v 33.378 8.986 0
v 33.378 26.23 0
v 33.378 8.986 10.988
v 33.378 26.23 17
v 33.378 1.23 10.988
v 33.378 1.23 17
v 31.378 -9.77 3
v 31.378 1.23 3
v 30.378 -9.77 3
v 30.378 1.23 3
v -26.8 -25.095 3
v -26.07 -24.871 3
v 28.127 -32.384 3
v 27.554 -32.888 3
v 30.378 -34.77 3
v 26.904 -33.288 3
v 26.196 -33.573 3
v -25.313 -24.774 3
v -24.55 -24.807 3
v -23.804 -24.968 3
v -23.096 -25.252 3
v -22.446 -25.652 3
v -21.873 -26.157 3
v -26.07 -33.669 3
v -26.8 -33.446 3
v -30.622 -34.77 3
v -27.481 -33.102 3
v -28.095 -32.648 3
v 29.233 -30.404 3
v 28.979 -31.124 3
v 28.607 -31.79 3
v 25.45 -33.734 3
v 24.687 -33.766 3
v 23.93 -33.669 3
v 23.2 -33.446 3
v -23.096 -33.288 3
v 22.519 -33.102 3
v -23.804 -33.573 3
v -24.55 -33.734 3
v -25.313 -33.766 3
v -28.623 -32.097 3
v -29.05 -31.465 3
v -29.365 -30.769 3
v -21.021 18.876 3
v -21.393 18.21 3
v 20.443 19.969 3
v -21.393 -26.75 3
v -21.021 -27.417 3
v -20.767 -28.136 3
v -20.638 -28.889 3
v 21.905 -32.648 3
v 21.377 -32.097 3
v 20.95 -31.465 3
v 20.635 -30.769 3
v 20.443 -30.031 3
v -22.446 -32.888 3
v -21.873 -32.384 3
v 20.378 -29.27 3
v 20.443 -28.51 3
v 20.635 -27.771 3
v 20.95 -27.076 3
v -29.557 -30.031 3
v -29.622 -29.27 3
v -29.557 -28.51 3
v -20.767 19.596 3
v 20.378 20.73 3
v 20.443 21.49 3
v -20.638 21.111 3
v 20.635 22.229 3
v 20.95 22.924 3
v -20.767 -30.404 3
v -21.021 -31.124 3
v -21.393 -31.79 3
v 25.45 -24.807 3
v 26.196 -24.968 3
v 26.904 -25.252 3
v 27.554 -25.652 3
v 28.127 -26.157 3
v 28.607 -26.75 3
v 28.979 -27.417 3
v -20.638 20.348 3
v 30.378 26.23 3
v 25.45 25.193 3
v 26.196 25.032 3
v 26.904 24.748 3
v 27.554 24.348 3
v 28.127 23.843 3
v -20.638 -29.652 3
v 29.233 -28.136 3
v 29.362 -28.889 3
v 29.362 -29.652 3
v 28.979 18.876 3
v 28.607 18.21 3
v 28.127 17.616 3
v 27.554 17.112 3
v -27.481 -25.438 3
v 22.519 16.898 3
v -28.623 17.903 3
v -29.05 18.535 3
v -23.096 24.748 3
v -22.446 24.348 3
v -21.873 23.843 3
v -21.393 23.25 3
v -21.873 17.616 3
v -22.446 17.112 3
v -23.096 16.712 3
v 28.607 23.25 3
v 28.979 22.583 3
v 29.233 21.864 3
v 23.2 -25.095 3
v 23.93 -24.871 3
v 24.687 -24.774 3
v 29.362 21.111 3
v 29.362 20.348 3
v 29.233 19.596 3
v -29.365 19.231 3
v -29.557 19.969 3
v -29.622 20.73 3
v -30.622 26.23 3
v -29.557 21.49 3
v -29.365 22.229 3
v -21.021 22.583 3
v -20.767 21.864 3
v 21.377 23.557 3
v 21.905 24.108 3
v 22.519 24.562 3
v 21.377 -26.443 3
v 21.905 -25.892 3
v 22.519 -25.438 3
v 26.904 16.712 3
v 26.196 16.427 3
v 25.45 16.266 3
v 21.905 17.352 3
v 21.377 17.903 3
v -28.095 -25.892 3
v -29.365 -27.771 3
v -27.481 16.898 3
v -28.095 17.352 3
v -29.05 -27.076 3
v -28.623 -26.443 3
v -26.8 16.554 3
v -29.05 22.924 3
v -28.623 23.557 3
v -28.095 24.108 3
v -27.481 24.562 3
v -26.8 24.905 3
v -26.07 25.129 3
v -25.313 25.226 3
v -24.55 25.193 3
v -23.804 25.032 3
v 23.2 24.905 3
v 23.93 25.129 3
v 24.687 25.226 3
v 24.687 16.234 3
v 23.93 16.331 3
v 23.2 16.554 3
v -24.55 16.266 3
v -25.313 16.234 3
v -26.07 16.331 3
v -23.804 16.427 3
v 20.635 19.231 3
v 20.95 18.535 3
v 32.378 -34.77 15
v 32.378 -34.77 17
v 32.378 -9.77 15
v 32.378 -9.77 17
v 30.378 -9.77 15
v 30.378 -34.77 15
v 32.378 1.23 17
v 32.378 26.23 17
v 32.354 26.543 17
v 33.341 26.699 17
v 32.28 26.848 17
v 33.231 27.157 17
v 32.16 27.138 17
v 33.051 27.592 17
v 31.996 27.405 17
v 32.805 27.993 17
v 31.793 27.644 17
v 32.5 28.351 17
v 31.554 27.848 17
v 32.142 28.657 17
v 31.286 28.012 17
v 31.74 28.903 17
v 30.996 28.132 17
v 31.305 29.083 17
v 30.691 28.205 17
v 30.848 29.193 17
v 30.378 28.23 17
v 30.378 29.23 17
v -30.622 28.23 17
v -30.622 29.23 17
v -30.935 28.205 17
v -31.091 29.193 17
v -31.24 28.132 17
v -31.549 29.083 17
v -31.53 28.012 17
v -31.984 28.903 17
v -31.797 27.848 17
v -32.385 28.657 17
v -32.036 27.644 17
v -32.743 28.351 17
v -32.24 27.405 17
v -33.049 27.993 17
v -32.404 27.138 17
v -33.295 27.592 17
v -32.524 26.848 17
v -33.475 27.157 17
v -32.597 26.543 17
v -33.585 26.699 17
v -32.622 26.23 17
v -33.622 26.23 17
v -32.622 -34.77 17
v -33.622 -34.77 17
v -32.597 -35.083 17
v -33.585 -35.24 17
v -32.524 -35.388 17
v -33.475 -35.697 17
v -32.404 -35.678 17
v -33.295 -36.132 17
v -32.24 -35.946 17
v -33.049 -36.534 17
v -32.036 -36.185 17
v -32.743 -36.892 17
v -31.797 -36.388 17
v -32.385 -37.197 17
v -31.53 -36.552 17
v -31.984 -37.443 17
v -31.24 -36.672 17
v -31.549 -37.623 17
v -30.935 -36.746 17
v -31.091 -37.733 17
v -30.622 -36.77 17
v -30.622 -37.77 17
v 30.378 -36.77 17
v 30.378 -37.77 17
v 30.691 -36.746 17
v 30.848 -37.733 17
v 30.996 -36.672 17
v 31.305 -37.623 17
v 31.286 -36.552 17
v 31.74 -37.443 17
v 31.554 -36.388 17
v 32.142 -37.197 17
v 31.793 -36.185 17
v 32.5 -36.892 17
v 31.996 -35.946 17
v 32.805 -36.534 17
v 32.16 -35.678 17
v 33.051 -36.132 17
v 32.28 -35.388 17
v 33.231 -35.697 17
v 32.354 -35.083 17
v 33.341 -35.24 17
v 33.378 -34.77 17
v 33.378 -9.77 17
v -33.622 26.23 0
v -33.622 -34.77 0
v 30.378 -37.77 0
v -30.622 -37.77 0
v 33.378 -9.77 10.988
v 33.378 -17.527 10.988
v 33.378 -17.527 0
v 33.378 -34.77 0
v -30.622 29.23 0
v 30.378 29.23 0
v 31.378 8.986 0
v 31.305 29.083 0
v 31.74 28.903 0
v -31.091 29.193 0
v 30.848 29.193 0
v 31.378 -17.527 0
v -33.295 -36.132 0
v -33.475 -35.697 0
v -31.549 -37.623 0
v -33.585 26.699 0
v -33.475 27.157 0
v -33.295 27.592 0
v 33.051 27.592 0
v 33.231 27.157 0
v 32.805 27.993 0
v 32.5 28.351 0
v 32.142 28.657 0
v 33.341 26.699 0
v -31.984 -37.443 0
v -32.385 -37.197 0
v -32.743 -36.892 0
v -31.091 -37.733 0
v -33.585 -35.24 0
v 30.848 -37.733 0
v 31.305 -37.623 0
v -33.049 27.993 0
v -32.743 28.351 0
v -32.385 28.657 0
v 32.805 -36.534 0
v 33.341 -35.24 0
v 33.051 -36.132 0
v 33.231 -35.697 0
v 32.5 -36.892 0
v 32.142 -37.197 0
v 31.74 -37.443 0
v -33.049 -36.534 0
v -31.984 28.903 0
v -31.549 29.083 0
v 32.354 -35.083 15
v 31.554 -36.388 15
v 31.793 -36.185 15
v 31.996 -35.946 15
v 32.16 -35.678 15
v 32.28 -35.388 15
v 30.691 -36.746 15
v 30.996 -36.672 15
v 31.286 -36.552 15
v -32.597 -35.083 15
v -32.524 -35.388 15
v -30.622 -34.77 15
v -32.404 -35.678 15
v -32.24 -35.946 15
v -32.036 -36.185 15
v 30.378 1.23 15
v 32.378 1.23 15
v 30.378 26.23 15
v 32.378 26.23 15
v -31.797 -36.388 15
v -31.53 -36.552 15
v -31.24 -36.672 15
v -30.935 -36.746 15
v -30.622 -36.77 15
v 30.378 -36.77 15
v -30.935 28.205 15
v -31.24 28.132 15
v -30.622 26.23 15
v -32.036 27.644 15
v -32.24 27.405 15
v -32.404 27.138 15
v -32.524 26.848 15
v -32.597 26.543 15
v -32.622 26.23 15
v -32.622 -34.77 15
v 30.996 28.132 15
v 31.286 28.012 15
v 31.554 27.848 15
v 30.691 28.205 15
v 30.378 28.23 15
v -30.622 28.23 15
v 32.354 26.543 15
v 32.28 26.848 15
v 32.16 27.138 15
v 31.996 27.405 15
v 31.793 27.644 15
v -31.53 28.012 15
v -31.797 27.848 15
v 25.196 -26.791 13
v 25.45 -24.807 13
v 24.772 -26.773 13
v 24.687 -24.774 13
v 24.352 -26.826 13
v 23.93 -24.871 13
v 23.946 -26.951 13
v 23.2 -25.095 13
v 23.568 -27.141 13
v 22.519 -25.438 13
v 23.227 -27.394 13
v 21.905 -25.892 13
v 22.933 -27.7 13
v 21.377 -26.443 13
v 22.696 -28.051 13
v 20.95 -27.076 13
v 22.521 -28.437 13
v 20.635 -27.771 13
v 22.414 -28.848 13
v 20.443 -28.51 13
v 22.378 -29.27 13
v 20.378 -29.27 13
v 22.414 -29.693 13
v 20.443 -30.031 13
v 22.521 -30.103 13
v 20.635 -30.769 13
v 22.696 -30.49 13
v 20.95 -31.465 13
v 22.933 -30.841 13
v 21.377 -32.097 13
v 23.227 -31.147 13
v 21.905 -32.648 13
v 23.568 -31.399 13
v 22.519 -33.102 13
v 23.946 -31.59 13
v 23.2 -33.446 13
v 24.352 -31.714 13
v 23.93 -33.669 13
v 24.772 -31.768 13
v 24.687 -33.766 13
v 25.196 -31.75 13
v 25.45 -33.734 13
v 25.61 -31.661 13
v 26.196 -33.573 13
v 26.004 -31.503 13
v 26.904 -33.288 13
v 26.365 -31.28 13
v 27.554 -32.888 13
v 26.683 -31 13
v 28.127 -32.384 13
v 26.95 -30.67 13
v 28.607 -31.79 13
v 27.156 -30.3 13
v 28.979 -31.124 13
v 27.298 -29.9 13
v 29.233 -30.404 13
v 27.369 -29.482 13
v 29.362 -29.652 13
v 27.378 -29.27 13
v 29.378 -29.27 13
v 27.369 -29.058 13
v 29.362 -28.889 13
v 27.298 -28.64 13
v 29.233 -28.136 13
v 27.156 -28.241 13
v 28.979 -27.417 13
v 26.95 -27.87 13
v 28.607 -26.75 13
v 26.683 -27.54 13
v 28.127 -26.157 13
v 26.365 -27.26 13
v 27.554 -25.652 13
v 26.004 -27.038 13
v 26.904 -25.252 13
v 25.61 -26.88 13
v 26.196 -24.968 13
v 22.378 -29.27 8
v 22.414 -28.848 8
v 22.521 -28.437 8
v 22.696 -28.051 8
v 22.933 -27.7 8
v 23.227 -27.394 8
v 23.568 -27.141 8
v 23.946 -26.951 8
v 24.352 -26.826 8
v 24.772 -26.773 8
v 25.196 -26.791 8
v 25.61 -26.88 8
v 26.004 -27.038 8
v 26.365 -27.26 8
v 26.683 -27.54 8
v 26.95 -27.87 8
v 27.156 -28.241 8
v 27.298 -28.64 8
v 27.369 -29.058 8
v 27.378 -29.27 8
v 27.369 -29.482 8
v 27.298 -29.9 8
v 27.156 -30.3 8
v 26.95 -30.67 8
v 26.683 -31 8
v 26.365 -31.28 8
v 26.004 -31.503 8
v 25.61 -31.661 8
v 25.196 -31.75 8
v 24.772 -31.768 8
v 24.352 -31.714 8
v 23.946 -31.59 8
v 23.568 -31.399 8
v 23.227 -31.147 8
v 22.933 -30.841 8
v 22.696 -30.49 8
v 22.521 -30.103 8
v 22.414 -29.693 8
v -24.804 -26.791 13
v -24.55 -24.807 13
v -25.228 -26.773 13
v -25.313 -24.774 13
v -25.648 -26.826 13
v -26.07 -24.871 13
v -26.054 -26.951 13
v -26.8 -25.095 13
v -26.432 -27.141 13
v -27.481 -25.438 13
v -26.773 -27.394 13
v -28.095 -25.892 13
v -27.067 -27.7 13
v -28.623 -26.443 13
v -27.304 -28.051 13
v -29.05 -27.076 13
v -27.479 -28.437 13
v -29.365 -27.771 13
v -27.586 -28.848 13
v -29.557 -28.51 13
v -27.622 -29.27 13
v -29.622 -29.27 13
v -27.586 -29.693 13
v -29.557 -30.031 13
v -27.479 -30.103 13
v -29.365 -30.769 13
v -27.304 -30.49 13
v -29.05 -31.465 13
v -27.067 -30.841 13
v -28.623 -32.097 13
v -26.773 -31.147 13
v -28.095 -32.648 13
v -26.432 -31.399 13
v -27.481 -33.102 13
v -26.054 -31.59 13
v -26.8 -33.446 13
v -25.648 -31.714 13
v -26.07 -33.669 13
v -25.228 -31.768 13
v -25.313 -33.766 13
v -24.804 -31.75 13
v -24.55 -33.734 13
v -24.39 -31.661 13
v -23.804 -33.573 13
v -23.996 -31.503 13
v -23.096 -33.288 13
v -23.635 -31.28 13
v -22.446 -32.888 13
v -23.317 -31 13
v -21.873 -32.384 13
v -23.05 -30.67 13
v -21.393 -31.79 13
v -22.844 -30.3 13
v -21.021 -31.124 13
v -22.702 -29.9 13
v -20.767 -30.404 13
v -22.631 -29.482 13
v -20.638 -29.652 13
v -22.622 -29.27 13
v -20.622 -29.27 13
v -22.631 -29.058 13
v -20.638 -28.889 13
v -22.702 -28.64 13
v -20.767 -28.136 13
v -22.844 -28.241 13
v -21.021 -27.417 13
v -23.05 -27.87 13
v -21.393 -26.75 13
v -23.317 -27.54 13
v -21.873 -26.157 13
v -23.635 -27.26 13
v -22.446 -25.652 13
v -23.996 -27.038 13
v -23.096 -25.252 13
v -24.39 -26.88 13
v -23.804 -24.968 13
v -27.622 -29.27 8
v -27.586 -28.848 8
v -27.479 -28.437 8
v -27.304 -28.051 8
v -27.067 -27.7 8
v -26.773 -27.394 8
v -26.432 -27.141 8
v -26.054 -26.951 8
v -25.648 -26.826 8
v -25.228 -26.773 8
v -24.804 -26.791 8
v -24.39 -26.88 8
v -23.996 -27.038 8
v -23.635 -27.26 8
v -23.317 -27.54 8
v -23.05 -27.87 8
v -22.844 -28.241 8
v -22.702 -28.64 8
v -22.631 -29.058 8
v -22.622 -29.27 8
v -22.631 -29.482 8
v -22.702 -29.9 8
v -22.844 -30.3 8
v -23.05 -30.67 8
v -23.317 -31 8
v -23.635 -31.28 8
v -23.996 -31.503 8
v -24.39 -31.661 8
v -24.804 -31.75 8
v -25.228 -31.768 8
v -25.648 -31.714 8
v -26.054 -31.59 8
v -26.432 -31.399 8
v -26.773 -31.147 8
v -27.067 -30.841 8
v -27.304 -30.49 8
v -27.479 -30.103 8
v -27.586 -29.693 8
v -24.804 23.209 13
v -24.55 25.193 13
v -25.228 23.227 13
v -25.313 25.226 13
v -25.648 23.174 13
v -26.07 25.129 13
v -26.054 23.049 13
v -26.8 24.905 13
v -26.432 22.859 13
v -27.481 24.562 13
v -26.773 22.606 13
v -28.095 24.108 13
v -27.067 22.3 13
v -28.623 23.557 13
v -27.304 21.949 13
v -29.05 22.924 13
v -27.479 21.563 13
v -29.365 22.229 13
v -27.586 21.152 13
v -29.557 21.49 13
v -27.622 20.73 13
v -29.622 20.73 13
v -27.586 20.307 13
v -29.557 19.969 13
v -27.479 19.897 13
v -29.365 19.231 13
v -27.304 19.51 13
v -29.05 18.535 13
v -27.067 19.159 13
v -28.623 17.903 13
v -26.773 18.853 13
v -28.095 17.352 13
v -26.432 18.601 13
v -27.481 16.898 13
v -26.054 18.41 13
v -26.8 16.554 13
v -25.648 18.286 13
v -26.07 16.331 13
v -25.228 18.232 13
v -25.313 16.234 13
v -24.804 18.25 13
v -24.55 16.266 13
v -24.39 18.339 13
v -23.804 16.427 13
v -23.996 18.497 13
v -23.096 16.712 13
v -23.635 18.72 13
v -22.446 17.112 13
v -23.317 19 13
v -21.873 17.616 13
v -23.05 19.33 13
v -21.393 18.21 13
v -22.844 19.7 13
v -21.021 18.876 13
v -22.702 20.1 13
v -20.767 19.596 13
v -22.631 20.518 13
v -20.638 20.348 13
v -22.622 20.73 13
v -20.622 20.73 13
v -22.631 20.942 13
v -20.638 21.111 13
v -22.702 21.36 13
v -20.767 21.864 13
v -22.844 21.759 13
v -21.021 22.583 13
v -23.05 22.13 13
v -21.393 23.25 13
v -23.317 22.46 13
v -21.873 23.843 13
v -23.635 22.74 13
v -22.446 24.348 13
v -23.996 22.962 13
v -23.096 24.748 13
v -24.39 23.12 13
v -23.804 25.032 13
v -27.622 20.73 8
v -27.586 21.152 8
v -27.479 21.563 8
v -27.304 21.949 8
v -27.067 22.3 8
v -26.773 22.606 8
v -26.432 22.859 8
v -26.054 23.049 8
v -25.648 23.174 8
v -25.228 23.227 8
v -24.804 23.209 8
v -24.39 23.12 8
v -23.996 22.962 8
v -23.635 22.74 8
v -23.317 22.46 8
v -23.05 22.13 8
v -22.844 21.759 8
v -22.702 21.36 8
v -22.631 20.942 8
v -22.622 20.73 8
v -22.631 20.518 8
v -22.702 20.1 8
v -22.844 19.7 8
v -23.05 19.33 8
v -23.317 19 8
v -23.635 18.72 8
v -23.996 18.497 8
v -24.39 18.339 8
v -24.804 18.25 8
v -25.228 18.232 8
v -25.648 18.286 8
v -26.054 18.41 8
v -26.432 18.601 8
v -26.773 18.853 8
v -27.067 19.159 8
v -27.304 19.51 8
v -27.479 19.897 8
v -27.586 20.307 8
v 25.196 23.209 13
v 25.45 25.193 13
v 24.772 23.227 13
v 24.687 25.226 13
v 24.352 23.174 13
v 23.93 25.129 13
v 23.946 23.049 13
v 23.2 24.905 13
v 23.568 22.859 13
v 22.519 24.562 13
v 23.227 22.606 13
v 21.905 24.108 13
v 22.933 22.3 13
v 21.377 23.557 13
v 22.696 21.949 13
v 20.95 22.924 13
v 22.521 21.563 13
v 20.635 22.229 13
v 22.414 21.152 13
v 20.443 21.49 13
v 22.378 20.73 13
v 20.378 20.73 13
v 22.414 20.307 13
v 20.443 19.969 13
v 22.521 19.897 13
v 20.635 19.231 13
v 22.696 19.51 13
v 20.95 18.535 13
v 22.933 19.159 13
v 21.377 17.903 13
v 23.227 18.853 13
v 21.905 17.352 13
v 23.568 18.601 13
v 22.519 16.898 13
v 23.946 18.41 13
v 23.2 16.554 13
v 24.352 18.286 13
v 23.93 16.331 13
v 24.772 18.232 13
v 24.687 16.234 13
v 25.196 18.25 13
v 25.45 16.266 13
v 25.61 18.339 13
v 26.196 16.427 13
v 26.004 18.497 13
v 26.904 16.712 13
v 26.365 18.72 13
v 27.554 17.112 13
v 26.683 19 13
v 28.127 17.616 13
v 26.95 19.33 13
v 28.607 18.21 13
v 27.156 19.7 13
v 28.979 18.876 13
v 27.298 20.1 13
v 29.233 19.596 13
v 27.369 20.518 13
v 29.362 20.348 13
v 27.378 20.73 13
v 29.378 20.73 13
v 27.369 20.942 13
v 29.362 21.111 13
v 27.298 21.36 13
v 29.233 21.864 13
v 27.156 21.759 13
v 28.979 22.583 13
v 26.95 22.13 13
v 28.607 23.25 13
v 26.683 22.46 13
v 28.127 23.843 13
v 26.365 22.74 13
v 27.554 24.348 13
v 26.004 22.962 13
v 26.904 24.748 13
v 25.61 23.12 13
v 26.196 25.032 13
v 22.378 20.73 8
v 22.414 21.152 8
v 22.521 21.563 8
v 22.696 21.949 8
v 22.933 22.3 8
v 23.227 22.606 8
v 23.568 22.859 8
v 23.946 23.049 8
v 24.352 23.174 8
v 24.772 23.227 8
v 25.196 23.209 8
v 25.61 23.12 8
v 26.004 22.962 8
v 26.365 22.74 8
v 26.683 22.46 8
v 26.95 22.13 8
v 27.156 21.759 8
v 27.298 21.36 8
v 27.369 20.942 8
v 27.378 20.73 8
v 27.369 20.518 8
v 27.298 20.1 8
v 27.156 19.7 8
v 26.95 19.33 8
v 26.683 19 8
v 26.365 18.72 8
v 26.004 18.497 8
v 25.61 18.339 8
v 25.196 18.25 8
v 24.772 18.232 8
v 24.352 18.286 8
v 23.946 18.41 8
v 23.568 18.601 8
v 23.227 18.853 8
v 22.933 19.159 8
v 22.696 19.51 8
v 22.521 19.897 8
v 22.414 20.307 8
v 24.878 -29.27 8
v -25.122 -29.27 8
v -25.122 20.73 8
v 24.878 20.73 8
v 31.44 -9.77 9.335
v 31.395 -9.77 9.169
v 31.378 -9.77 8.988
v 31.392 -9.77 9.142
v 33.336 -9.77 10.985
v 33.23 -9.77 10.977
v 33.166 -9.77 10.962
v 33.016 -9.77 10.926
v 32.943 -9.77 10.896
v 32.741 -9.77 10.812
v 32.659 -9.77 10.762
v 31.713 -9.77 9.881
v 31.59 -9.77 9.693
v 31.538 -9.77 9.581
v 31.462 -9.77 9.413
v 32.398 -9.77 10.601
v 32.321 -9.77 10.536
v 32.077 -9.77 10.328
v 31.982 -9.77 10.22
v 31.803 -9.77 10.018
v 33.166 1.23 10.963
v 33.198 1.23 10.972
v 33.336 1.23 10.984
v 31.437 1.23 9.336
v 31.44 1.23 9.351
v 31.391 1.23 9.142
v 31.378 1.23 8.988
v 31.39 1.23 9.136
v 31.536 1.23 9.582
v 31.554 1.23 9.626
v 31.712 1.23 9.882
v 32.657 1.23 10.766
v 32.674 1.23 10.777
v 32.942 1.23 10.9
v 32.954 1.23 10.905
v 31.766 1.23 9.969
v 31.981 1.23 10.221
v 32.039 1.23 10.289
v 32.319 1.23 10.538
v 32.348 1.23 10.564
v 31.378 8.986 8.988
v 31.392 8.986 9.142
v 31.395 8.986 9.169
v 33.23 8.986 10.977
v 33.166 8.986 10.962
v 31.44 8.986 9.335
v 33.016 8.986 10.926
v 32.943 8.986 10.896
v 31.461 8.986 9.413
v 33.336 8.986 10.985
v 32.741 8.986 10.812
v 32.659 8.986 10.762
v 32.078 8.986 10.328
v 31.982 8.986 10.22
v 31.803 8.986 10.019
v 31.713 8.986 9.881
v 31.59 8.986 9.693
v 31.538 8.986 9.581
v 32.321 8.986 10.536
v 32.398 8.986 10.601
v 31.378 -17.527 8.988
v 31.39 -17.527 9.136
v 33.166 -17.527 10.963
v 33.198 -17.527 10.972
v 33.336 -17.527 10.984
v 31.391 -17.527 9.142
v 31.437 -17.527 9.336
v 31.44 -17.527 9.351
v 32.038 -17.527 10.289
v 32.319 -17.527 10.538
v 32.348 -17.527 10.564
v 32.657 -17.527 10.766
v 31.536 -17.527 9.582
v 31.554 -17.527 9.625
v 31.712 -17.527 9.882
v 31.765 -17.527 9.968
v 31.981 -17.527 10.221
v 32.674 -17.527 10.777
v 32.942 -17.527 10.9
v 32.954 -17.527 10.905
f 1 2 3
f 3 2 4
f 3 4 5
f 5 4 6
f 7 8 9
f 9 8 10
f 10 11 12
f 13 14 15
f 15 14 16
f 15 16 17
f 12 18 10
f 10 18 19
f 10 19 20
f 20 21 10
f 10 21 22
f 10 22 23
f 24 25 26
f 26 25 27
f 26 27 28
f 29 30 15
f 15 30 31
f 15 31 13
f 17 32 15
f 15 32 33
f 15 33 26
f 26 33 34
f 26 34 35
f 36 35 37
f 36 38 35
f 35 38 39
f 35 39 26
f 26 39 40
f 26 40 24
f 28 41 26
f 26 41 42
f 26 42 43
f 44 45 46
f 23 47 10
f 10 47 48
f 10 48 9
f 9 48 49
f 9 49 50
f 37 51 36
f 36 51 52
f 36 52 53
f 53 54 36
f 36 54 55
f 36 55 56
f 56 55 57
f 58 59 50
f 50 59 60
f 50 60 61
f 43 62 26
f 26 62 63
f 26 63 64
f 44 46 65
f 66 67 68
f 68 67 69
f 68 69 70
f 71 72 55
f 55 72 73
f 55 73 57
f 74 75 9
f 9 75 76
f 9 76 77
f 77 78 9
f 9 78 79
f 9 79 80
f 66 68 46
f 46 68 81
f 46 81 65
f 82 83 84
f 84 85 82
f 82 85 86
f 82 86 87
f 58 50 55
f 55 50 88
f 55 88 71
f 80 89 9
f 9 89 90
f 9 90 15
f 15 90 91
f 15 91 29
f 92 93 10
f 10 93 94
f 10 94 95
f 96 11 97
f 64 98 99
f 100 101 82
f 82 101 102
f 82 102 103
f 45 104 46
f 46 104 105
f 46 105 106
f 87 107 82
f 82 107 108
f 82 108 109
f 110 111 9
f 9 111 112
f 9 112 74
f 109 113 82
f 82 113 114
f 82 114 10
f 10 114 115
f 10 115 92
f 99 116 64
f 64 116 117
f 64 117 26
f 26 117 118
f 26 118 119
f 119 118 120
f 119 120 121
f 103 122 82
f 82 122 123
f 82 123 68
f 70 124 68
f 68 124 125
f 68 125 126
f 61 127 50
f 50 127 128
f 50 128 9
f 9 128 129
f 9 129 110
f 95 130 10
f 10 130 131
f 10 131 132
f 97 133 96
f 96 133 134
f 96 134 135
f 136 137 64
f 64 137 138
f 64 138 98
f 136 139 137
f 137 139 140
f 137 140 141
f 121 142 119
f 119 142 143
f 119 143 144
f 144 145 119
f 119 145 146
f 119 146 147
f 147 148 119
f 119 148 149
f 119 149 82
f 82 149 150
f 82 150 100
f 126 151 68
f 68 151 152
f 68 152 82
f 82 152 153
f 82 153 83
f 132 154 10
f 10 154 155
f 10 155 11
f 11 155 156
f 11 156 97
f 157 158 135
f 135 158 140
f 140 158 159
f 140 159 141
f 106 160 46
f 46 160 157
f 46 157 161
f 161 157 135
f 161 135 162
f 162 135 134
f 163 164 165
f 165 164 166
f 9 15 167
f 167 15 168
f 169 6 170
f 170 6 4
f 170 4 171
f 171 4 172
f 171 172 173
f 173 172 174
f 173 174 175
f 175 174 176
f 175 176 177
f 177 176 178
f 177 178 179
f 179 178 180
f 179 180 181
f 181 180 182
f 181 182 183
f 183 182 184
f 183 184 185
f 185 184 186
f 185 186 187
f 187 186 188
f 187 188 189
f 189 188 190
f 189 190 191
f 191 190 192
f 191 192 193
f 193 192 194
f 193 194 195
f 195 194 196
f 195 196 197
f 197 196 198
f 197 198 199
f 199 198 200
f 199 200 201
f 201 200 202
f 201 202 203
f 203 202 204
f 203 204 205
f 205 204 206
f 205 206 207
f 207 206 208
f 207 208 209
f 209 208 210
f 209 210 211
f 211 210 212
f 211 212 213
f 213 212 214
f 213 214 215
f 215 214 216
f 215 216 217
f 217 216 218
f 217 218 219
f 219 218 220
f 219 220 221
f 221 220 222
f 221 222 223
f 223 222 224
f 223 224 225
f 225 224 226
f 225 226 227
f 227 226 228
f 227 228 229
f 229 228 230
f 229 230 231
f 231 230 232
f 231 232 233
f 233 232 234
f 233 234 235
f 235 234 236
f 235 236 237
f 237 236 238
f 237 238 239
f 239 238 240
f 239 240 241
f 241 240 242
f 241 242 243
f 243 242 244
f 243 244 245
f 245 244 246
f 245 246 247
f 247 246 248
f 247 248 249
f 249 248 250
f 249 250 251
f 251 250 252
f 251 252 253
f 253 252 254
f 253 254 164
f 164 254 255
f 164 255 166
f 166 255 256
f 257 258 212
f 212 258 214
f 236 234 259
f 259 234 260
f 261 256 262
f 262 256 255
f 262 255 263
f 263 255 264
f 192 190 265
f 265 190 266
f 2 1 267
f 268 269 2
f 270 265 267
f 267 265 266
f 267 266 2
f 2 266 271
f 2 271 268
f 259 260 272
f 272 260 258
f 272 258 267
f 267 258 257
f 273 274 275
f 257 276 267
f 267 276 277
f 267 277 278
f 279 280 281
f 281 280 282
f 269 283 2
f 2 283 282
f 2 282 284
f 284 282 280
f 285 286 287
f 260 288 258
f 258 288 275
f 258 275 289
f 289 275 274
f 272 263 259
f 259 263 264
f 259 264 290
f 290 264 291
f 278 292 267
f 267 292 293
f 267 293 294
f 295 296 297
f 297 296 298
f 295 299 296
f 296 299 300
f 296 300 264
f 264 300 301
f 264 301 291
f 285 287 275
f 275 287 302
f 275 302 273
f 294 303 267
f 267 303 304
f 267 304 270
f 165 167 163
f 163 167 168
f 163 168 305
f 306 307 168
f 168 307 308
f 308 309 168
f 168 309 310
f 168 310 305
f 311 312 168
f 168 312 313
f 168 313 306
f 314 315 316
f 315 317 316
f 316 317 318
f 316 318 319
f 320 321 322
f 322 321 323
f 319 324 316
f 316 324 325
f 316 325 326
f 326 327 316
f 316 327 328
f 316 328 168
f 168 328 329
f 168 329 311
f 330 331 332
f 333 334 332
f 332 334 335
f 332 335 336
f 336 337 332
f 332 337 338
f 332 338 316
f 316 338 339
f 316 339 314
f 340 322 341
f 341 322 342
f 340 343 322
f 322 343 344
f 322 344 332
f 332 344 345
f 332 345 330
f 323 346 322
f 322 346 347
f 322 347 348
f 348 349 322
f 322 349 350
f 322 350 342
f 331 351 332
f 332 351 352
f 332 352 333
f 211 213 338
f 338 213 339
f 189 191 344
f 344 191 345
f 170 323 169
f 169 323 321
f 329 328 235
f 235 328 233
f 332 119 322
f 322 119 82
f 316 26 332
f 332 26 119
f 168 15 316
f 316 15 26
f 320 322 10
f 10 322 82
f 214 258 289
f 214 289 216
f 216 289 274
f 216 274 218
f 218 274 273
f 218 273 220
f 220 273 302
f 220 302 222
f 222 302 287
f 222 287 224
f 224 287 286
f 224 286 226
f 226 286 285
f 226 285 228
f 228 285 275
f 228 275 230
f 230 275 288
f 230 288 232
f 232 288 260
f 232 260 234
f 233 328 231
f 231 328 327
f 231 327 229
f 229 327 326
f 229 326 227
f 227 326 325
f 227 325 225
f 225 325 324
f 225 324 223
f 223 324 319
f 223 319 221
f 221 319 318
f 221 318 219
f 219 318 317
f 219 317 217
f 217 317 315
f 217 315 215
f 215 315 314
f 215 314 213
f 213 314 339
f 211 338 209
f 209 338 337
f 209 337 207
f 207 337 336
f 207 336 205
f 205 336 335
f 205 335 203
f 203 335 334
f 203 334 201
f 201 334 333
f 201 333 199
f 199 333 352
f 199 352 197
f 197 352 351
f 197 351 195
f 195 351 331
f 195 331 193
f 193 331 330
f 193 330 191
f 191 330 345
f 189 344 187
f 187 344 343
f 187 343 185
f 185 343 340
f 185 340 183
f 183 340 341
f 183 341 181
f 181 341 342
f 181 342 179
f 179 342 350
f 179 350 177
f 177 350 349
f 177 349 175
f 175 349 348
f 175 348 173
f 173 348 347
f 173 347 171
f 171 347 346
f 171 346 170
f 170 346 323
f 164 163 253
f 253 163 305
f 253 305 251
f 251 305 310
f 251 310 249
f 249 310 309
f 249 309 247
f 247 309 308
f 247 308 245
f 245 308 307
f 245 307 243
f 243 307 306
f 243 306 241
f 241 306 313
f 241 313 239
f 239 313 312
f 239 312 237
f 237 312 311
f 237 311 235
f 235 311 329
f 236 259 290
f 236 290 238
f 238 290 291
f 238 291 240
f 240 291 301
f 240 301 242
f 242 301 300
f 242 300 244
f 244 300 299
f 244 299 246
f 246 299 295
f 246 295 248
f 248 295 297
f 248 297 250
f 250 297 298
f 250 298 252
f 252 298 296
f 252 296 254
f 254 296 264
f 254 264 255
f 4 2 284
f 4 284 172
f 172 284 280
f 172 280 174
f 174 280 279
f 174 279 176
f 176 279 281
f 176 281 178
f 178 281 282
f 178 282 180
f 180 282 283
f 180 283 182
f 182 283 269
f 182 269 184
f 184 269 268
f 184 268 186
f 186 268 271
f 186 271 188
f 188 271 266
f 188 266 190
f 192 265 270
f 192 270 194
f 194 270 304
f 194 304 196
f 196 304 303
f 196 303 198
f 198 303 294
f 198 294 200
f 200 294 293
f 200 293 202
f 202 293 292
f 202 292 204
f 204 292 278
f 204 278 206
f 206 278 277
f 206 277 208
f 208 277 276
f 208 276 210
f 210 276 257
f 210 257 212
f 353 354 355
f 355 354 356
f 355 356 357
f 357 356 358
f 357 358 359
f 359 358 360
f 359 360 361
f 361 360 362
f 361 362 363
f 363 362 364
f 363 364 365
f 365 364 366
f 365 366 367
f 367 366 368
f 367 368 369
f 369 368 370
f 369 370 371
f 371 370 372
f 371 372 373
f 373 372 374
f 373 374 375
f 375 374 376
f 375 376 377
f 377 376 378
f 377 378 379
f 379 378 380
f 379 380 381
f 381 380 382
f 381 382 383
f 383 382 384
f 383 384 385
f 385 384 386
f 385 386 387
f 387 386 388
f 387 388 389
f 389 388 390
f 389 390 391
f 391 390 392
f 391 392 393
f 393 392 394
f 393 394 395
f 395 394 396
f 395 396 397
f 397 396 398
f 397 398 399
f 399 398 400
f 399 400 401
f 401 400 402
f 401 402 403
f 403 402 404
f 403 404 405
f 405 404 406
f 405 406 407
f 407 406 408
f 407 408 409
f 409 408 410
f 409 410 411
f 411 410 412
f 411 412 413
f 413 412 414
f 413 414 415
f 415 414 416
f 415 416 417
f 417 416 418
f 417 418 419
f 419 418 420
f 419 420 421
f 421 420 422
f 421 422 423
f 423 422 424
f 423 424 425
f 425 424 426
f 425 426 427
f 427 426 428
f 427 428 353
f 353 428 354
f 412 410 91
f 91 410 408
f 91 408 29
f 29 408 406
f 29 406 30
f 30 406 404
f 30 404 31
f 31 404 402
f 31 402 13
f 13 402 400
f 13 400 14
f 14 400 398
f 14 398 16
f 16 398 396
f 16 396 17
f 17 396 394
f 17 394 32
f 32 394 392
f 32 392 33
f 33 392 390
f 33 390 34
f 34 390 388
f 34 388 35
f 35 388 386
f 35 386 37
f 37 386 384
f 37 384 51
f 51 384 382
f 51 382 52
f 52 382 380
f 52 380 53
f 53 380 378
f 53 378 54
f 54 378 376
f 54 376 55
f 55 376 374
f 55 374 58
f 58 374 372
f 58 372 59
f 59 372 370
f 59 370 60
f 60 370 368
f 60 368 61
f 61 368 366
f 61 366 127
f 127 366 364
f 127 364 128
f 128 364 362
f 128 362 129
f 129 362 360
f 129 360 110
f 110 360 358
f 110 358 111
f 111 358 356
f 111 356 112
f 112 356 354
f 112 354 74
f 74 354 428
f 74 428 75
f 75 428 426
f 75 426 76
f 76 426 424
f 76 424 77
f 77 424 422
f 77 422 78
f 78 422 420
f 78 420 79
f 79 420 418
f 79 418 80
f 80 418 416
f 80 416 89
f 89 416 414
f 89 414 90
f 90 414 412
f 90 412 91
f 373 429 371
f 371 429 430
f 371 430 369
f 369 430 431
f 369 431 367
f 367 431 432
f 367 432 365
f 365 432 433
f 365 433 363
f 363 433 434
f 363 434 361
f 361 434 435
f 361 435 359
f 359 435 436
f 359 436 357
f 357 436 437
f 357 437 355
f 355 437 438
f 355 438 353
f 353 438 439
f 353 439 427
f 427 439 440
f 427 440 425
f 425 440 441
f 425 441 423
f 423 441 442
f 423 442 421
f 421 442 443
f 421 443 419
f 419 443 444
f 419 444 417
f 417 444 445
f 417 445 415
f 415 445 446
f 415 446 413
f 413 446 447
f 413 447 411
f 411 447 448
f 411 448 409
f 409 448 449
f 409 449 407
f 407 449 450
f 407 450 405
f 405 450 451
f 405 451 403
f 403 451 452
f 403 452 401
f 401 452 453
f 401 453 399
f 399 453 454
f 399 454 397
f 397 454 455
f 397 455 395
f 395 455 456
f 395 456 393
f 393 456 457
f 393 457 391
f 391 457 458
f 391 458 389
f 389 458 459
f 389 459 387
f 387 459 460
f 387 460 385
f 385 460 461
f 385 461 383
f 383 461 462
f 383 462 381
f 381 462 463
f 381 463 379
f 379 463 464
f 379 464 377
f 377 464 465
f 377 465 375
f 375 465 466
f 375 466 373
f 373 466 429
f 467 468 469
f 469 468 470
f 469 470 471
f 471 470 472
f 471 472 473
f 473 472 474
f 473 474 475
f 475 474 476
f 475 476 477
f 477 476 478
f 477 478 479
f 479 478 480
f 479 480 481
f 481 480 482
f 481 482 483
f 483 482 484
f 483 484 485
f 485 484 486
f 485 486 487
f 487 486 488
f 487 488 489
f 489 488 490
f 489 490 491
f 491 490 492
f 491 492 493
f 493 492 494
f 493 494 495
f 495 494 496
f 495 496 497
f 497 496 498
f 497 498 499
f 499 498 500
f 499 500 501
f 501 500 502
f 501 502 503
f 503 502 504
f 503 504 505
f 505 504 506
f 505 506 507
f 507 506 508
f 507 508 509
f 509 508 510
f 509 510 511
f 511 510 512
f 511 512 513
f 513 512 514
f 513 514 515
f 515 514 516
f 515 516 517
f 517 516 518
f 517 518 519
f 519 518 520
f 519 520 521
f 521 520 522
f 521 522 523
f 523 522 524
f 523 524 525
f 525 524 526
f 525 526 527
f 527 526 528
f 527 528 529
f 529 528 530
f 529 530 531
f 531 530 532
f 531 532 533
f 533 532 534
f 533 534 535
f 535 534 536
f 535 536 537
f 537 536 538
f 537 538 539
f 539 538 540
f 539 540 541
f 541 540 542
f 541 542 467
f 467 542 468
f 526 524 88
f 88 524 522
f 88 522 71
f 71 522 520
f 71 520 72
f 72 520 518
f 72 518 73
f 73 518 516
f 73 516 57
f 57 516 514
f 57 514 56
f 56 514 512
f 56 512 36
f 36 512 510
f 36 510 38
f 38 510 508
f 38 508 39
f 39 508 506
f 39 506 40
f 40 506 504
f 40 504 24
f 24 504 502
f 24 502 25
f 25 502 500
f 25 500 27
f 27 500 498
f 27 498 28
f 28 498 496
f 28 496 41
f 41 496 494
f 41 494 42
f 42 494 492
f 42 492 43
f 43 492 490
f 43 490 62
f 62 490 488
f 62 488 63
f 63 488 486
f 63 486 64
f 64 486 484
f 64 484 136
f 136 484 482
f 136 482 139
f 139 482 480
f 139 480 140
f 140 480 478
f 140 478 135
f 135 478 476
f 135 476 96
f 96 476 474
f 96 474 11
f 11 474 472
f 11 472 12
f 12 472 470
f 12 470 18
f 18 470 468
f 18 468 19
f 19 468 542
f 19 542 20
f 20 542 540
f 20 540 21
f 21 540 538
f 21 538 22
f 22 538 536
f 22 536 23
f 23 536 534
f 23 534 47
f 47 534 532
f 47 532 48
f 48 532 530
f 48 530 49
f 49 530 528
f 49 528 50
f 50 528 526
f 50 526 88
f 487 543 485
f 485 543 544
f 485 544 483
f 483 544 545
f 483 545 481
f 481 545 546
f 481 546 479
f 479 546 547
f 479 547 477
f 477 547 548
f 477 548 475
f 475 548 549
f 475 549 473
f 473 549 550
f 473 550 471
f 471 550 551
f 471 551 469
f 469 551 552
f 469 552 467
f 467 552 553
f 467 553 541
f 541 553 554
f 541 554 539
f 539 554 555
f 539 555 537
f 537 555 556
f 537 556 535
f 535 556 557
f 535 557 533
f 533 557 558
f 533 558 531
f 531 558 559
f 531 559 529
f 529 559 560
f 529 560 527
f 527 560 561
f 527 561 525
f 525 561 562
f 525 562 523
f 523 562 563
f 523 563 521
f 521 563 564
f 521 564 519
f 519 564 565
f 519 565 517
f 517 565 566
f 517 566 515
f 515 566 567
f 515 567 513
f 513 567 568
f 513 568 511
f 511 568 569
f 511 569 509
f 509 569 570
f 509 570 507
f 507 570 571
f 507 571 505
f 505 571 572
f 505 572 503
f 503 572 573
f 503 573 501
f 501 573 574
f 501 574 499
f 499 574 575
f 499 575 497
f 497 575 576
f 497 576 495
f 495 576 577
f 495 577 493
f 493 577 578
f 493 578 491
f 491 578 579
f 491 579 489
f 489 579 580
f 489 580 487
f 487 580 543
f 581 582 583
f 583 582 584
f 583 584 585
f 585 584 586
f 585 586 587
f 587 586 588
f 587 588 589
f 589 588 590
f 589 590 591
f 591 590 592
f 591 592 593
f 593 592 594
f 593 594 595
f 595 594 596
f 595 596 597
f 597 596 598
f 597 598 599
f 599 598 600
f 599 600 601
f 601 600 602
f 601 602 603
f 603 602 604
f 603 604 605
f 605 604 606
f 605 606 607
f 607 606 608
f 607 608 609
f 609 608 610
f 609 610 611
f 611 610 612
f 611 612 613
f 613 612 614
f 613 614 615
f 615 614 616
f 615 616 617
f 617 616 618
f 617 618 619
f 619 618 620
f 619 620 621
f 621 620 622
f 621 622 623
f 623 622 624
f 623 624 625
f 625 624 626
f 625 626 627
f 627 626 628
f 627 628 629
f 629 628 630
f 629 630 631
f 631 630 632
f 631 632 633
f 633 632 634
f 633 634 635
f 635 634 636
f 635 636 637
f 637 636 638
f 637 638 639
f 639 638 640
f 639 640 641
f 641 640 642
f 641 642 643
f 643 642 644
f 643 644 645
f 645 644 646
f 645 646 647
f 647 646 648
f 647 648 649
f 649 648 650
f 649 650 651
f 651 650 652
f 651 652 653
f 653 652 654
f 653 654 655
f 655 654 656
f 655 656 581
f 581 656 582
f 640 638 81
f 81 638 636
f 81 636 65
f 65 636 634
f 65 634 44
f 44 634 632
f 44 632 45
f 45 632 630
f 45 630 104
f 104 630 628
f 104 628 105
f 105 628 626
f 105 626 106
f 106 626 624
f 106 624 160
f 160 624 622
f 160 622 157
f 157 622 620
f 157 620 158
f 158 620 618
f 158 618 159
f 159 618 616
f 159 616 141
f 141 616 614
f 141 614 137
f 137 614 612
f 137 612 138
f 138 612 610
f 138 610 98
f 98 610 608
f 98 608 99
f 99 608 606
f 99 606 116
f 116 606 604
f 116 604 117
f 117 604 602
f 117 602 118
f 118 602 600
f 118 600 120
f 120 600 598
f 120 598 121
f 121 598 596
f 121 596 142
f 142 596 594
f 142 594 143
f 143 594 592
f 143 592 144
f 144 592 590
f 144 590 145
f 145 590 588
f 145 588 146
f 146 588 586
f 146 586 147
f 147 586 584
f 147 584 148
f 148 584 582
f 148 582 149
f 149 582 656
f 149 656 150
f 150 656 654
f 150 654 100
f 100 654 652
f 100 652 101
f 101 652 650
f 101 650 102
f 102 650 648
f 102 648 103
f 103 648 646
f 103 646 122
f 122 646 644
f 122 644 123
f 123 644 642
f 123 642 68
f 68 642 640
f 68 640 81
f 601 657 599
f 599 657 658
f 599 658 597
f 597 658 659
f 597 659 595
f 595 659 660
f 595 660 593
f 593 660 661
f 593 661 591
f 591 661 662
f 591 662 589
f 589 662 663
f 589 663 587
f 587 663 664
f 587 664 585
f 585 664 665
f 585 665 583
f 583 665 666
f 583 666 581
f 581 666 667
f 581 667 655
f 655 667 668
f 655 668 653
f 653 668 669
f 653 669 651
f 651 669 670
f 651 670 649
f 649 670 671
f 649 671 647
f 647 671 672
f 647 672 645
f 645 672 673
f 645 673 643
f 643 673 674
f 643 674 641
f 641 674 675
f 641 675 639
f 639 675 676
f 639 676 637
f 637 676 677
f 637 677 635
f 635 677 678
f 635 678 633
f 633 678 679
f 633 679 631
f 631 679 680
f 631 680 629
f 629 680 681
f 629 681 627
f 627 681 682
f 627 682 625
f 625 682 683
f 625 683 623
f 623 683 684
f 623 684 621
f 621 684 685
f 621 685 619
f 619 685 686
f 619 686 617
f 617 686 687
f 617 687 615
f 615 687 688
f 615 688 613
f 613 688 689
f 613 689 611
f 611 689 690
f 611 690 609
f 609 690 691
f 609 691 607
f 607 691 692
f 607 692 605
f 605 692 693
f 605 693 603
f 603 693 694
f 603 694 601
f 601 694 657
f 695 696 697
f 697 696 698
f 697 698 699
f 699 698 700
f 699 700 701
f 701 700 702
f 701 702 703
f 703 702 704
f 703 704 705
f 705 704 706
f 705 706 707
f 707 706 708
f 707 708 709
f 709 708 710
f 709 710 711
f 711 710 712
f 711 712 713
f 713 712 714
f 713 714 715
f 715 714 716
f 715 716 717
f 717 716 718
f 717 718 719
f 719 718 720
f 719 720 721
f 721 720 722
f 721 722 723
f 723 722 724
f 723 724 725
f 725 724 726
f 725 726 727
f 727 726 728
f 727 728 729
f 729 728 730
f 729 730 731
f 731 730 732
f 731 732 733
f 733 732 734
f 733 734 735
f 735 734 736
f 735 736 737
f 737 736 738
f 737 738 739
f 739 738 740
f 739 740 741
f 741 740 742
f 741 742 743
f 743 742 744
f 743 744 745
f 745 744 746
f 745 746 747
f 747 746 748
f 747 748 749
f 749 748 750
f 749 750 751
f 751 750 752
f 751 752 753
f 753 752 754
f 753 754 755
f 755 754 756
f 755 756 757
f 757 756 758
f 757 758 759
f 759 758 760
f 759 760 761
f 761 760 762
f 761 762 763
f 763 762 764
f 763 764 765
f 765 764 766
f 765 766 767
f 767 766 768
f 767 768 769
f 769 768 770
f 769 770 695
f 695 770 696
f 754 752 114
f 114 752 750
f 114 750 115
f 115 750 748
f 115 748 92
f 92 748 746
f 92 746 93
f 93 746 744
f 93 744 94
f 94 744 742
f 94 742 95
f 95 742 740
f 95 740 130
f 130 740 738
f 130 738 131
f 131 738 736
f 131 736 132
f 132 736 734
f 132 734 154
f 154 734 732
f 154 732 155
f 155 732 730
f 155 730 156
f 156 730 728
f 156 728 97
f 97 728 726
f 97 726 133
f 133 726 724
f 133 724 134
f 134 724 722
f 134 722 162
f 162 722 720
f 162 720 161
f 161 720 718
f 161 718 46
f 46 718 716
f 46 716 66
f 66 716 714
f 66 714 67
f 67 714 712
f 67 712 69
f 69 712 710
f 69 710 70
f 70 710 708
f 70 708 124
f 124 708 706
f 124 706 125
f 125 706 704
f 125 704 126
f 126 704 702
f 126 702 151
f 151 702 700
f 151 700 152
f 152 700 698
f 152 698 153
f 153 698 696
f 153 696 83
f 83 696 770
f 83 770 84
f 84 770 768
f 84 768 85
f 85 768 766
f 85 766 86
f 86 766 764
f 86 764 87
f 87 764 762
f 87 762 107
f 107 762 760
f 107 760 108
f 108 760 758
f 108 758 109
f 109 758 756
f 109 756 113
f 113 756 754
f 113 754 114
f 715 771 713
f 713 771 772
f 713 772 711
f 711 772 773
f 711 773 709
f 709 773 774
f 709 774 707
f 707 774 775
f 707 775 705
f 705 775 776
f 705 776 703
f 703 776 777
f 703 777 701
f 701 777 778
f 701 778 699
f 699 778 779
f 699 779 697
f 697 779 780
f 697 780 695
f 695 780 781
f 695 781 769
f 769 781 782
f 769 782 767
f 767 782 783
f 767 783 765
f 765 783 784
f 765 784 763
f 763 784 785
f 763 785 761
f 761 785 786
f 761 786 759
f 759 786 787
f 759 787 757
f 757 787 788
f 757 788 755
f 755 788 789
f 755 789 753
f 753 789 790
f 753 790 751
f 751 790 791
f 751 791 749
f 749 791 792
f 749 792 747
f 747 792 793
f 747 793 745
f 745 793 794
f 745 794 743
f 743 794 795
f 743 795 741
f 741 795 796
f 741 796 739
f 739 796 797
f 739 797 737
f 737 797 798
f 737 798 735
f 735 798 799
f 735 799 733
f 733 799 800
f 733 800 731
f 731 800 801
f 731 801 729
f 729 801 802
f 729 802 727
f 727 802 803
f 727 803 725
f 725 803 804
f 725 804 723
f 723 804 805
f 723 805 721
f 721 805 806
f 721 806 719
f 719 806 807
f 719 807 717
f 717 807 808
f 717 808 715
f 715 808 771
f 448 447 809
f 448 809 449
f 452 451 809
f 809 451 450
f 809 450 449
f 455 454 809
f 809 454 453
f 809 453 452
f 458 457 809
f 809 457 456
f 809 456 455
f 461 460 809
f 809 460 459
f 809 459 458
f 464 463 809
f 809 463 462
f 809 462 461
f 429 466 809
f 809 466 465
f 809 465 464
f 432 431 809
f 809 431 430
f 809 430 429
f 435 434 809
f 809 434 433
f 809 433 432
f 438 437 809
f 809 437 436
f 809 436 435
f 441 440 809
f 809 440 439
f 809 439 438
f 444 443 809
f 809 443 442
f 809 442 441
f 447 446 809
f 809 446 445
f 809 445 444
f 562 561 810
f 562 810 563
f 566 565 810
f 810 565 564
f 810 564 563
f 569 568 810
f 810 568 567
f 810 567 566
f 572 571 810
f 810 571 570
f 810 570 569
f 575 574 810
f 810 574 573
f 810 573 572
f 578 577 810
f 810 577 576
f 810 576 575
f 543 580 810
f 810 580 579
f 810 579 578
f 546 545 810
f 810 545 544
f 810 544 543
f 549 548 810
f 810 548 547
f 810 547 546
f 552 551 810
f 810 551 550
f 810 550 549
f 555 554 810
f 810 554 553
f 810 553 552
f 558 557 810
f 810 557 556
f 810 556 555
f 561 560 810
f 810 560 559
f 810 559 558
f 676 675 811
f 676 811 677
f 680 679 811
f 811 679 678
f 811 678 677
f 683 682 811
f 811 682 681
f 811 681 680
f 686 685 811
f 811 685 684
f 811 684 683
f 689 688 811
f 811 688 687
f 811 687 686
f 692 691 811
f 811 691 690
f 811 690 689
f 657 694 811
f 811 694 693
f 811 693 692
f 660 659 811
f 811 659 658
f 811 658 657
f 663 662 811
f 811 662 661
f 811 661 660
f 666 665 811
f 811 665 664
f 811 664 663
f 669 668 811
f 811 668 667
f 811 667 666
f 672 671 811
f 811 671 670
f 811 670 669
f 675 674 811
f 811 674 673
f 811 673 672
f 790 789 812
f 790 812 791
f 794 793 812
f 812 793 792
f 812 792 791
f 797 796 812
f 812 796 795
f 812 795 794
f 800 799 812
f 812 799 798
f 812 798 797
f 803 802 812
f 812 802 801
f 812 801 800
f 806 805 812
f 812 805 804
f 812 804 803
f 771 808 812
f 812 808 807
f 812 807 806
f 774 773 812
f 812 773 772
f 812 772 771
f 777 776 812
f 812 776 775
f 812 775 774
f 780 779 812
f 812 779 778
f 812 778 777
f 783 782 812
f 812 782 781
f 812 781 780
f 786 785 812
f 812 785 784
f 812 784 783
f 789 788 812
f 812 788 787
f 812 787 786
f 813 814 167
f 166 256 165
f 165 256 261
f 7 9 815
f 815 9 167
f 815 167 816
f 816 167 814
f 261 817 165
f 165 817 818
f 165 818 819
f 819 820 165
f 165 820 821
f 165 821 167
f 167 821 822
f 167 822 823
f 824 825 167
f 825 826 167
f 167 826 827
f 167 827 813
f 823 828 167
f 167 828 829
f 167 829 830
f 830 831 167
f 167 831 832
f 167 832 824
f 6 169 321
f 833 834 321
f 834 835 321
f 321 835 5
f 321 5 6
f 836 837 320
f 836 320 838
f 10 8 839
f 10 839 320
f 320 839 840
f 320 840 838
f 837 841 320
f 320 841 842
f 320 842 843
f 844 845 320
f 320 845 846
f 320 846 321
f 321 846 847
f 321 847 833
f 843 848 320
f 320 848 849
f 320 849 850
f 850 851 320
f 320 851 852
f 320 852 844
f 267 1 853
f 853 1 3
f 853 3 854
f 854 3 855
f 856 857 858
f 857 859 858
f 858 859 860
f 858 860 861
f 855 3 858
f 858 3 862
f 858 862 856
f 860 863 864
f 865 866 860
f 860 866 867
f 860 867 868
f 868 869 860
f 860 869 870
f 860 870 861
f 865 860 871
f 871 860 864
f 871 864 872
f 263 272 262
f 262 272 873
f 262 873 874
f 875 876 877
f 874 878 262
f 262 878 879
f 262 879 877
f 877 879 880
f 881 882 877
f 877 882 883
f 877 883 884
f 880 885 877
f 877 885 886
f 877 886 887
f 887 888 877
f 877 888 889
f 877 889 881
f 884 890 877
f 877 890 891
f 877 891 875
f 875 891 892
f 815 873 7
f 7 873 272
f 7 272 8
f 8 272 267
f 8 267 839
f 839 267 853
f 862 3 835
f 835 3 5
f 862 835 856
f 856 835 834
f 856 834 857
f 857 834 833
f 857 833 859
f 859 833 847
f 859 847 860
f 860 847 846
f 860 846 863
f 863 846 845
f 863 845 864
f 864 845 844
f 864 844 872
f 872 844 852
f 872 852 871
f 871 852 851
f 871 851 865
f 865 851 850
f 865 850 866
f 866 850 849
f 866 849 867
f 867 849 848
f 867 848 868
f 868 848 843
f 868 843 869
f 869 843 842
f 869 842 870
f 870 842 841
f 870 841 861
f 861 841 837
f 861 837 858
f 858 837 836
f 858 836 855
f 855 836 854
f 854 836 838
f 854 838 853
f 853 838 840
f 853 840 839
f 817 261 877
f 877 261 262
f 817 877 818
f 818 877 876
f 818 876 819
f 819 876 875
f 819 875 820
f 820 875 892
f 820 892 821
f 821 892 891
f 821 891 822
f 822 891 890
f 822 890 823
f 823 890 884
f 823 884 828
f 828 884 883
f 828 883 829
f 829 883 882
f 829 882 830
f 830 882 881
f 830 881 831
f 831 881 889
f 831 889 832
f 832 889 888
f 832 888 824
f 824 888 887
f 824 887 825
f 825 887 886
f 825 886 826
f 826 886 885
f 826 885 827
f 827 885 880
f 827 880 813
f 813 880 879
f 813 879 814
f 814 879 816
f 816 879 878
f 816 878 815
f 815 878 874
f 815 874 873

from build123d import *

# Parameters (mm, degrees)
SKETCH1_W           = 67
SKETCH1_H           = 67
BOSS_EXTRUDE1_DEPTH = 17
SKETCH2_W           = 61
SKETCH2_H           = 61
CUT_EXTRUDE1_DEPTH  = 14
CUT_EXTRUDE2_START  = 17
SKETCH3_W           = 65
SKETCH3_H           = 65
CUT_EXTRUDE2_DEPTH  = 2
FILLET1_R           = 3
FILLET3_R           = 2
FILLET4_R           = 2
FILLET5_R           = 2
FILLET6_R           = 2
FILLET7_R           = 3
FILLET8_R           = 3
FILLET9_R           = 3
SKETCH4_R           = 4.5
SKETCH4_R_2         = 2.5
BOSS_EXTRUDE2_DEPTH = 10
SKETCH5_R           = 2.5
BOSS_EXTRUDE3_DEPTH = 5
SKETCH6_W           = 28
SKETCH6_H           = 11
CUT_EXTRUDE3_DEPTH  = 6
SKETCH7_W           = 21.976496756
SKETCH7_H           = 26.513580245
CUT_EXTRUDE4_DEPTH  = 2
FILLET12_SIZE       = 2
FILLET13_SIZE       = 2


with BuildPart() as part:
    # Sketch1 → Boss-Extrude1 (new body)
    with BuildSketch(Plane.XY):
        with Locations((-0.121691543, -4.270311459)):
            Rectangle(SKETCH1_W, SKETCH1_H)
    extrude(amount=BOSS_EXTRUDE1_DEPTH)

    # Sketch2 → Cut-Extrude1 (cut)
    with BuildSketch(Plane.XY.offset(17)):
        with Locations((-0.121691543, -4.270311459)):
            Rectangle(SKETCH2_W, SKETCH2_H)
    extrude(amount=-CUT_EXTRUDE1_DEPTH, mode=Mode.SUBTRACT)

    # Sketch3 → Cut-Extrude2 (cut)
    with BuildSketch(Plane.XY.offset(CUT_EXTRUDE2_START)):
        with Locations((-0.121691543, -4.270311459)):
            Rectangle(SKETCH3_W, SKETCH3_H)
    extrude(amount=-CUT_EXTRUDE2_DEPTH, mode=Mode.SUBTRACT)

    # Fillet1
    fillet1_edges = [part.edges().sort_by_distance(p)[0] for p in [
        (-33.621691543, -37.770311459, 8.5),
    ]]
    fillet(fillet1_edges, radius=FILLET1_R)

    # Fillet3
    fillet3_edges = [part.edges().sort_by_distance(p)[0] for p in [
        (-32.621691543, -36.770311459, 16),
    ]]
    fillet(fillet3_edges, radius=FILLET3_R)

    # Fillet4
    fillet4_edges = [part.edges().sort_by_distance(p)[0] for p in [
        (-32.621691543, 28.229688541, 16),
    ]]
    fillet(fillet4_edges, radius=FILLET4_R)

    # Fillet5
    fillet5_edges = [part.edges().sort_by_distance(p)[0] for p in [
        (32.378308457, 28.229688541, 16),
    ]]
    fillet(fillet5_edges, radius=FILLET5_R)

    # Fillet6
    fillet6_edges = [part.edges().sort_by_distance(p)[0] for p in [
        (32.378308457, -36.770311459, 16),
    ]]
    fillet(fillet6_edges, radius=FILLET6_R)

    # Fillet7
    fillet7_edges = [part.edges().sort_by_distance(p)[0] for p in [
        (33.378308457, -37.770311459, 8.5),
    ]]
    fillet(fillet7_edges, radius=FILLET7_R)

    # Fillet8
    fillet8_edges = [part.edges().sort_by_distance(p)[0] for p in [
        (33.378308457, 29.229688541, 8.5),
    ]]
    fillet(fillet8_edges, radius=FILLET8_R)

    # Fillet9
    fillet9_edges = [part.edges().sort_by_distance(p)[0] for p in [
        (-33.621691543, 29.229688541, 8.5),
    ]]
    fillet(fillet9_edges, radius=FILLET9_R)

    # Sketch4 → Boss-Extrude2 (add)
    # profile 1 of 4: a face of its own
    with BuildSketch(Plane.XY.offset(3)):
        with Locations(Location((24.878308457, -29.270311459, 0), (0, 0, 180))):
            Circle(SKETCH4_R)
        with Locations((24.878308457, -29.270311459)):
            Circle(SKETCH4_R_2, mode=Mode.SUBTRACT)
    # profile 2 of 4: a face of its own
    with BuildSketch(Plane.XY.offset(3)):
        with Locations(Location((-25.121691543, -29.270311459, 0), (0, 0, 180))):
            Circle(SKETCH4_R)
        with Locations((-25.121691543, -29.270311459)):
            Circle(SKETCH4_R_2, mode=Mode.SUBTRACT)
    # profile 3 of 4: a face of its own
    with BuildSketch(Plane.XY.offset(3)):
        with Locations(Location((-25.121691543, 20.729688541, 0), (0, 0, 180))):
            Circle(SKETCH4_R)
        with Locations((-25.121691543, 20.729688541)):
            Circle(SKETCH4_R_2, mode=Mode.SUBTRACT)
    # profile 4 of 4: a face of its own
    with BuildSketch(Plane.XY.offset(3)):
        with Locations(Location((24.878308457, 20.729688541, 0), (0, 0, 180))):
            Circle(SKETCH4_R)
        with Locations((24.878308457, 20.729688541)):
            Circle(SKETCH4_R_2, mode=Mode.SUBTRACT)
    extrude(amount=BOSS_EXTRUDE2_DEPTH)

    # Sketch5 → Boss-Extrude3 (add)
    with BuildSketch(Plane.XY.offset(3)):
        with Locations((24.878308457, -29.270311459)):
            Circle(SKETCH5_R)
        with Locations((-25.121691543, -29.270311459)):
            Circle(SKETCH5_R)
        with Locations((-25.121691543, 20.729688541)):
            Circle(SKETCH5_R)
        with Locations((24.878308457, 20.729688541)):
            Circle(SKETCH5_R)
    extrude(amount=BOSS_EXTRUDE3_DEPTH)

    # Sketch6 → Cut-Extrude3 (cut)
    with BuildSketch(Plane(origin=(33.378308457, 0, 0), x_dir=(0, 0, -1), z_dir=(1, 0, 0))):
        with Locations((-17, -4.270311459)):
            Rectangle(SKETCH6_W, SKETCH6_H)
    extrude(amount=-CUT_EXTRUDE3_DEPTH, mode=Mode.SUBTRACT)

    # Sketch7 → Cut-Extrude4 (cut)
    with BuildSketch(Plane(origin=(33.378308457, 0, 0), x_dir=(0, 0, -1), z_dir=(1, 0, 0))):
        with Locations((0, -4.27031146)):
            Rectangle(SKETCH7_W, SKETCH7_H)
    extrude(amount=-CUT_EXTRUDE4_DEPTH, mode=Mode.SUBTRACT)

    # Fillet12
    # a fillet whose section is not a circle: 2 mm, written as the material it adds along each edge
    with BuildSketch(Plane(origin=(31.378308457, 1.229688541, 10.988248378), x_dir=(0, 0, -1), z_dir=(0, 1, 0))) as fillet12_piece_1:
        with BuildLine():
            Bezier((FILLET12_SIZE, 0), (0, 0), (0, -FILLET12_SIZE), weights=[1, 0.471404521, 1])
            Line((0, -FILLET12_SIZE), (0, 0))
            Line((0, 0), (FILLET12_SIZE, 0))
        make_face()
    extrude(amount=12.756790123)

    # Fillet13
    # a fillet whose section is not a circle: 2 mm, written as the material it adds along each edge
    with BuildSketch(Plane(origin=(31.378308457, -22.527101582, 10.988248378), x_dir=(0, 0, -1), z_dir=(0, 1, 0))) as fillet13_piece_1:
        with BuildLine():
            Bezier((FILLET13_SIZE, 0), (0, 0), (0, -FILLET13_SIZE), weights=[1, 0.471404521, 1])
            Line((0, -FILLET13_SIZE), (0, 0))
            Line((0, 0), (FILLET13_SIZE, 0))
        make_face()
    extrude(amount=12.756790123)


solid = part.part
